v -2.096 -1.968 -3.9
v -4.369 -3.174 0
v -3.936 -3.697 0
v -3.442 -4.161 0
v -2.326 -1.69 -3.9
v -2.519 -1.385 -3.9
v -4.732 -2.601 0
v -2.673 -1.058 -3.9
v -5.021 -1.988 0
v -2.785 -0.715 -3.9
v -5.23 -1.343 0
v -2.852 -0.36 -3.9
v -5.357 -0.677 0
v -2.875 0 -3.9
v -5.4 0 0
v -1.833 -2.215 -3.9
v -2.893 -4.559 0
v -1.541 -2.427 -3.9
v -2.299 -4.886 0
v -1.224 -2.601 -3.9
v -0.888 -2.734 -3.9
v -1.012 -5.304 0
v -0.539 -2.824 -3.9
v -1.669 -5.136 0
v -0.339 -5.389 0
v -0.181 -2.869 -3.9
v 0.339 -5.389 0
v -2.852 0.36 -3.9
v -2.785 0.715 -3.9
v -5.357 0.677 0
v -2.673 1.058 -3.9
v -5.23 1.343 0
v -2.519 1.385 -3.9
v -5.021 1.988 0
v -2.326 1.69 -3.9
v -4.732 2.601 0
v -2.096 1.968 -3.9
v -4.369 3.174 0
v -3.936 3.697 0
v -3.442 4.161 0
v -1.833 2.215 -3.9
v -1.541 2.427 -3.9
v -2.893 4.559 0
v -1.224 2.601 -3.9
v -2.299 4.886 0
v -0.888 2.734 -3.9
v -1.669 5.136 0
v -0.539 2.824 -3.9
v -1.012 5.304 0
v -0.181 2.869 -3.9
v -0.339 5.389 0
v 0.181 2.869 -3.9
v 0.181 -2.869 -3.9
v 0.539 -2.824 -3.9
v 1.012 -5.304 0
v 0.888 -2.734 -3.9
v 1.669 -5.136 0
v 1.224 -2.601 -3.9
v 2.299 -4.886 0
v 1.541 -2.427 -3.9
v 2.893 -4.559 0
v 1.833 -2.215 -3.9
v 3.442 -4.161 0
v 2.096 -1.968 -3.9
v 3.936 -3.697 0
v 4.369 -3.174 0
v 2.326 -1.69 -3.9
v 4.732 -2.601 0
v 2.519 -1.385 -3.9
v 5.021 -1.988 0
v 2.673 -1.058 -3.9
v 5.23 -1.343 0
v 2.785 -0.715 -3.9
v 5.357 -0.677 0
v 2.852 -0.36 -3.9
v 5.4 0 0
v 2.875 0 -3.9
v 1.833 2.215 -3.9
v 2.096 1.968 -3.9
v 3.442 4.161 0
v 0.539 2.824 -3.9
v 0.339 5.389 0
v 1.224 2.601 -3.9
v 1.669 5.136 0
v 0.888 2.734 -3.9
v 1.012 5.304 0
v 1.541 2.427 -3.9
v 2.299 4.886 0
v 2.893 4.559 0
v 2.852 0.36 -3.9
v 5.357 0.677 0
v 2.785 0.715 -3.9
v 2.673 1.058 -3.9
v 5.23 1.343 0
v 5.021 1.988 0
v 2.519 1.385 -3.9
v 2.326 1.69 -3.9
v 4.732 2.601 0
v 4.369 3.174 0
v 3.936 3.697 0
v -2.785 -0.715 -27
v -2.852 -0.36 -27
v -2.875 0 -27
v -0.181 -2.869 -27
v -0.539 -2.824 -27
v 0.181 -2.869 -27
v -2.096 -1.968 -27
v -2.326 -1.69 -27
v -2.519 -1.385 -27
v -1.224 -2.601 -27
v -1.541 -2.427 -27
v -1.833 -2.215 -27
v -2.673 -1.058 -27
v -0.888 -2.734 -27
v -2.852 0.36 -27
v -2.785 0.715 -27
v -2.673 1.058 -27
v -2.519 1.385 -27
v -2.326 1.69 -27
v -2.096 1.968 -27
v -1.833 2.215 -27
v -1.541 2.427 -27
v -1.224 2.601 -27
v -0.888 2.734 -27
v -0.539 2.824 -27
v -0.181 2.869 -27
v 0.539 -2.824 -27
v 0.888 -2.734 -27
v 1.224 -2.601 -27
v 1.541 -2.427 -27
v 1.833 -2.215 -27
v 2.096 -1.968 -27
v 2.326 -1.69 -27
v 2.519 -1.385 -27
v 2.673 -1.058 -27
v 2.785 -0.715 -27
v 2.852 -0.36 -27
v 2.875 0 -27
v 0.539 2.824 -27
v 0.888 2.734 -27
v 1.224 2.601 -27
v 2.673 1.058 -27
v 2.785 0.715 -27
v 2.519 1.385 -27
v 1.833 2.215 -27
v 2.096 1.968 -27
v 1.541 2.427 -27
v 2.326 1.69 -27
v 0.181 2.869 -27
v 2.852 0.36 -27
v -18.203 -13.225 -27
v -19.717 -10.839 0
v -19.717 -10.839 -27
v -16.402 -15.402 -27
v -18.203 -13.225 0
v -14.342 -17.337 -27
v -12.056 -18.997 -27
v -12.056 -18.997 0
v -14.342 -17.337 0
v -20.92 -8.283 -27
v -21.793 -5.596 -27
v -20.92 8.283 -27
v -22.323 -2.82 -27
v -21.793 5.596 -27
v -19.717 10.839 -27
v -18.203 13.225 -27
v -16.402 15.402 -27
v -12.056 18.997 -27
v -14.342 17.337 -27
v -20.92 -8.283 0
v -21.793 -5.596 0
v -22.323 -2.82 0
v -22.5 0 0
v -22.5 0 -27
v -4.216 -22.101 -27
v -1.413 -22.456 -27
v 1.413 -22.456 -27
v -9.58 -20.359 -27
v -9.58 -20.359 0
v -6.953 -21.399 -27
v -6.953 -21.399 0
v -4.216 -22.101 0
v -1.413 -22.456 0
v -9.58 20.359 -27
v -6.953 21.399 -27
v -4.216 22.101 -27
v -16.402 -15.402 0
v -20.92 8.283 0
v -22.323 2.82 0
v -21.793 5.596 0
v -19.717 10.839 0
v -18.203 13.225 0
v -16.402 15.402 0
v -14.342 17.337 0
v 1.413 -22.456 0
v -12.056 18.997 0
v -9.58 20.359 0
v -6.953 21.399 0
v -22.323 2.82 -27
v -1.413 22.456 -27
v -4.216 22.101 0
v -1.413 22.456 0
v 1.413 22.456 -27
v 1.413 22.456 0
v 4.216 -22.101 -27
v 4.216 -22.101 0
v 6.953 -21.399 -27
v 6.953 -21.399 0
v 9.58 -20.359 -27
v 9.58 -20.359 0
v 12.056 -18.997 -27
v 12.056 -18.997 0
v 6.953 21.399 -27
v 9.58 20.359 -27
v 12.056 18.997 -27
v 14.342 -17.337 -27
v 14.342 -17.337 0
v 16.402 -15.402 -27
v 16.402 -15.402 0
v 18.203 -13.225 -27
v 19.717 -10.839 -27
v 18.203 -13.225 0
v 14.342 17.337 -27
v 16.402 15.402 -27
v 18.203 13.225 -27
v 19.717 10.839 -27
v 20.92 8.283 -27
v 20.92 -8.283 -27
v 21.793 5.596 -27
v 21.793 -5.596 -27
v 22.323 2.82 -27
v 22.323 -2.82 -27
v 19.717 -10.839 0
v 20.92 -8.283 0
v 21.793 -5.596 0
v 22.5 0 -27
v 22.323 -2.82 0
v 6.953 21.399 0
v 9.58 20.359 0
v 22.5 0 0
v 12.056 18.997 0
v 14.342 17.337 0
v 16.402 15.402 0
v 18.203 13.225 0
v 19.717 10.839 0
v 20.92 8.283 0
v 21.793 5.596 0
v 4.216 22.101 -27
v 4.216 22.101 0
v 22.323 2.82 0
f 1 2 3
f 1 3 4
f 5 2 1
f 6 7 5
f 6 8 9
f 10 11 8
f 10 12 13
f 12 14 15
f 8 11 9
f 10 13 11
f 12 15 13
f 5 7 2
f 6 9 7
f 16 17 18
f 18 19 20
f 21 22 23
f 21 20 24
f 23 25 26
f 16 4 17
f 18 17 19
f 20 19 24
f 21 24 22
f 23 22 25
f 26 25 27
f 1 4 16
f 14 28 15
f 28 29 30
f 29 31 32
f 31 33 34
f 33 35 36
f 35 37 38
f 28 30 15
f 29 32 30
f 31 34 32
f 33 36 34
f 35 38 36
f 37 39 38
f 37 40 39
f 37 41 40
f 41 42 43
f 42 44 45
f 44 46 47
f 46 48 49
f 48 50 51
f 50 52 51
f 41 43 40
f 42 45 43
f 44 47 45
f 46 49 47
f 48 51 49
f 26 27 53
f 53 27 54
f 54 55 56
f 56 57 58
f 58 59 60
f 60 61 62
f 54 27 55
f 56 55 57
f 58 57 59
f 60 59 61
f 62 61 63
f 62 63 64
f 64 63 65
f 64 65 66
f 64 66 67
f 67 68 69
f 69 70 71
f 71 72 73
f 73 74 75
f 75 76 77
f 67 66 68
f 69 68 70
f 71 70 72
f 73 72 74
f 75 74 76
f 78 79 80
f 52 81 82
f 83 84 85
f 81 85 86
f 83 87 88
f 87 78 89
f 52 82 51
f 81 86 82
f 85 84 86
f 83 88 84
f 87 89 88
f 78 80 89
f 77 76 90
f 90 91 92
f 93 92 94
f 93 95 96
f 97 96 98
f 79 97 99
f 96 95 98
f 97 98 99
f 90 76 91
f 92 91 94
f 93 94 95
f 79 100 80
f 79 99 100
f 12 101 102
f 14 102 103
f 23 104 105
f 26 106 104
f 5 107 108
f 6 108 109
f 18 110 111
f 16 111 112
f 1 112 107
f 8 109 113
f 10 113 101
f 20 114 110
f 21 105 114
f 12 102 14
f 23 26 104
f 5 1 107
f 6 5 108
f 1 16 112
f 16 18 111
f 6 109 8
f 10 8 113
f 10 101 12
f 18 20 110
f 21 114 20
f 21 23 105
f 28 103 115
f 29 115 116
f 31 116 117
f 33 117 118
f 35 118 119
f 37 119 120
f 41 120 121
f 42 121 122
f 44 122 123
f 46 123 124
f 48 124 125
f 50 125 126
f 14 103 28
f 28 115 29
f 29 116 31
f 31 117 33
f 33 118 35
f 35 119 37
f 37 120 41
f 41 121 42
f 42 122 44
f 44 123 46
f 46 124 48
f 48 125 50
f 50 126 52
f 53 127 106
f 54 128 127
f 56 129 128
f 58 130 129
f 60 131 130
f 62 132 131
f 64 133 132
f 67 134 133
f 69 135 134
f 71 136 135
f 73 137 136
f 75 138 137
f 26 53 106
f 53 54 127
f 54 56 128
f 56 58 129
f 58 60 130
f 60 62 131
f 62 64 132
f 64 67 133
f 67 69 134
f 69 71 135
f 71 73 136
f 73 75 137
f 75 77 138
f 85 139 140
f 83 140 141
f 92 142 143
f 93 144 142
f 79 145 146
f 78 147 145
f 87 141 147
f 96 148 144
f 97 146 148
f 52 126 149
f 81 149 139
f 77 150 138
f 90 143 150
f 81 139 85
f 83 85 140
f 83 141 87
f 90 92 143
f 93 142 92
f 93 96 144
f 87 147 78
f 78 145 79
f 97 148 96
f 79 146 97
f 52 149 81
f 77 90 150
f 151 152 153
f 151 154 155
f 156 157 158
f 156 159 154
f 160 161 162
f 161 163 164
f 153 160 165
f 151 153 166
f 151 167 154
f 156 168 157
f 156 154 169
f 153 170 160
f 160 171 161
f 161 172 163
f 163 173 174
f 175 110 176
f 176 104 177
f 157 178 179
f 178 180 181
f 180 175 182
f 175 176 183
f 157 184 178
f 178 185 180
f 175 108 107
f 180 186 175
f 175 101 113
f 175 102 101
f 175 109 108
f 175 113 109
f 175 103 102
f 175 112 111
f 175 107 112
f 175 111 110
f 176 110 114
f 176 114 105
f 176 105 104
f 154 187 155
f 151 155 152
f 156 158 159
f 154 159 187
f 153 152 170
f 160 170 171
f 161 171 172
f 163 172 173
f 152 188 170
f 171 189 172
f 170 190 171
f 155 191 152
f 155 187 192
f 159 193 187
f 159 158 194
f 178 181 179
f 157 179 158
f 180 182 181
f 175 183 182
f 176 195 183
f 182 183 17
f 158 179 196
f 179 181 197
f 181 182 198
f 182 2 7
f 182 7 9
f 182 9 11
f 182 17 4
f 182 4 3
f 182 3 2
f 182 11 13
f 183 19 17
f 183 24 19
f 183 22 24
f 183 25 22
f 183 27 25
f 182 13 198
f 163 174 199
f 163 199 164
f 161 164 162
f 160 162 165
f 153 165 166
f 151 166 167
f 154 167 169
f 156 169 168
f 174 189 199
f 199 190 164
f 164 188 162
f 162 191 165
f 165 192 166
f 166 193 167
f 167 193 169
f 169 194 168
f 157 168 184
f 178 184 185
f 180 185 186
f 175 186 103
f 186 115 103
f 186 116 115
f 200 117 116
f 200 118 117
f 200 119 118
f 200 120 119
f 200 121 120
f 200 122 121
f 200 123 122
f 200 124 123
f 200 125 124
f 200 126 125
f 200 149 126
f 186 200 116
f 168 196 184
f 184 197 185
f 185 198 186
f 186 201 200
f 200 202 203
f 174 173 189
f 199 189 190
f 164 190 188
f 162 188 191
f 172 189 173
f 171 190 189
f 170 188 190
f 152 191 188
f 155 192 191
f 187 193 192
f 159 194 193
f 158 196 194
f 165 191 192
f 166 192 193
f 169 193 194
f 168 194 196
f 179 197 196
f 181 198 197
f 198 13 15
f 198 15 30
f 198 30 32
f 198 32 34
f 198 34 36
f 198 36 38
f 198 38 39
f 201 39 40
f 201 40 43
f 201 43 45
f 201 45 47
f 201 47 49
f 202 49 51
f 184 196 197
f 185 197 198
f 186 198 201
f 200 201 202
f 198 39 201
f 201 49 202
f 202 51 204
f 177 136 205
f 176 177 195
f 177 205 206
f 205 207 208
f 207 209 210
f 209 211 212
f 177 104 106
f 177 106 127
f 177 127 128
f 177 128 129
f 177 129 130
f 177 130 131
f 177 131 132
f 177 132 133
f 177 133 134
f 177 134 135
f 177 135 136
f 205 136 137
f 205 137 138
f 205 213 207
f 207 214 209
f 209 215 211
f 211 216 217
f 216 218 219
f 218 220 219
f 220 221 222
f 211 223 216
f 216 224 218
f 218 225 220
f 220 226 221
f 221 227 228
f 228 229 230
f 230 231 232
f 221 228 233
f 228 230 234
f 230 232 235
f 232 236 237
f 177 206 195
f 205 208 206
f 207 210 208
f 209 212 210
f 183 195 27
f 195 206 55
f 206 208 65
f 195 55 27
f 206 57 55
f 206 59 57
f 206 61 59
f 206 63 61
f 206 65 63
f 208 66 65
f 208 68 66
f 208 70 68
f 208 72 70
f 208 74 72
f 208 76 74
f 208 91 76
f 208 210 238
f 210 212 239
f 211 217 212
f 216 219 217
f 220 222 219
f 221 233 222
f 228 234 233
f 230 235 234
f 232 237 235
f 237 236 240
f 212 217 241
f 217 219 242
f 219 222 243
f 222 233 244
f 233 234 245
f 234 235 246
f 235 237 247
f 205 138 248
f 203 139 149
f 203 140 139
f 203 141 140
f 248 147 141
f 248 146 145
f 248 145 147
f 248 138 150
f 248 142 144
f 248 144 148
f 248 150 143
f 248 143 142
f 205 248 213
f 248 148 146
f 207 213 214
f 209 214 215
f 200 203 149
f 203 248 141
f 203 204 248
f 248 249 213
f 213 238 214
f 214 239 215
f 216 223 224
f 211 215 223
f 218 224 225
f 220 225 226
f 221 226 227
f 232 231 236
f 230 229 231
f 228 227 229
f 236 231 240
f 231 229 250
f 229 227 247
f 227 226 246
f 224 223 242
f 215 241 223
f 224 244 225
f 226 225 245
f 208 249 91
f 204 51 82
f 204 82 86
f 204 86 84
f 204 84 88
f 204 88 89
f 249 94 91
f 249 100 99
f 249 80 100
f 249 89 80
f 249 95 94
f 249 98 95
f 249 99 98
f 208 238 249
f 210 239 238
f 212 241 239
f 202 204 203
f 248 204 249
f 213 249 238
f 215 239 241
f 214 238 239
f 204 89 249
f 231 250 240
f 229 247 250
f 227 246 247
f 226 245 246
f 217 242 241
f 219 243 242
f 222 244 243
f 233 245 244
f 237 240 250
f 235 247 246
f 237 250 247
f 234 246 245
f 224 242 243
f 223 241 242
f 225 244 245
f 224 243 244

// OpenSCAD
$fn = 50;

difference() {
	union() {
		translate(v = [0, 0, -27.0]) {
			cylinder(h = 27, r = 22.5);
		}
	}
	union() {
		translate(v = [0, 0, 0]) {
			rotate(a = [0, 0, 0]) {
				difference() {
					union() {
						translate(v = [0, 0, -30.0]) {
							cylinder(h = 30, r = 2.6);
						}
						translate(v = [0, 0, -3.9]) {
							cylinder(h = 3.9, r1 = 2.875, r2 = 5.4);
						}
						translate(v = [0, 0, -30.0]) {
							cylinder(h = 30, r = 2.875);
						}
						translate(v = [0, 0, -30.0]) {
							cylinder(h = 30, r = 2.6);
						}
					}
					union();
				}
			}
		}
	}
}
